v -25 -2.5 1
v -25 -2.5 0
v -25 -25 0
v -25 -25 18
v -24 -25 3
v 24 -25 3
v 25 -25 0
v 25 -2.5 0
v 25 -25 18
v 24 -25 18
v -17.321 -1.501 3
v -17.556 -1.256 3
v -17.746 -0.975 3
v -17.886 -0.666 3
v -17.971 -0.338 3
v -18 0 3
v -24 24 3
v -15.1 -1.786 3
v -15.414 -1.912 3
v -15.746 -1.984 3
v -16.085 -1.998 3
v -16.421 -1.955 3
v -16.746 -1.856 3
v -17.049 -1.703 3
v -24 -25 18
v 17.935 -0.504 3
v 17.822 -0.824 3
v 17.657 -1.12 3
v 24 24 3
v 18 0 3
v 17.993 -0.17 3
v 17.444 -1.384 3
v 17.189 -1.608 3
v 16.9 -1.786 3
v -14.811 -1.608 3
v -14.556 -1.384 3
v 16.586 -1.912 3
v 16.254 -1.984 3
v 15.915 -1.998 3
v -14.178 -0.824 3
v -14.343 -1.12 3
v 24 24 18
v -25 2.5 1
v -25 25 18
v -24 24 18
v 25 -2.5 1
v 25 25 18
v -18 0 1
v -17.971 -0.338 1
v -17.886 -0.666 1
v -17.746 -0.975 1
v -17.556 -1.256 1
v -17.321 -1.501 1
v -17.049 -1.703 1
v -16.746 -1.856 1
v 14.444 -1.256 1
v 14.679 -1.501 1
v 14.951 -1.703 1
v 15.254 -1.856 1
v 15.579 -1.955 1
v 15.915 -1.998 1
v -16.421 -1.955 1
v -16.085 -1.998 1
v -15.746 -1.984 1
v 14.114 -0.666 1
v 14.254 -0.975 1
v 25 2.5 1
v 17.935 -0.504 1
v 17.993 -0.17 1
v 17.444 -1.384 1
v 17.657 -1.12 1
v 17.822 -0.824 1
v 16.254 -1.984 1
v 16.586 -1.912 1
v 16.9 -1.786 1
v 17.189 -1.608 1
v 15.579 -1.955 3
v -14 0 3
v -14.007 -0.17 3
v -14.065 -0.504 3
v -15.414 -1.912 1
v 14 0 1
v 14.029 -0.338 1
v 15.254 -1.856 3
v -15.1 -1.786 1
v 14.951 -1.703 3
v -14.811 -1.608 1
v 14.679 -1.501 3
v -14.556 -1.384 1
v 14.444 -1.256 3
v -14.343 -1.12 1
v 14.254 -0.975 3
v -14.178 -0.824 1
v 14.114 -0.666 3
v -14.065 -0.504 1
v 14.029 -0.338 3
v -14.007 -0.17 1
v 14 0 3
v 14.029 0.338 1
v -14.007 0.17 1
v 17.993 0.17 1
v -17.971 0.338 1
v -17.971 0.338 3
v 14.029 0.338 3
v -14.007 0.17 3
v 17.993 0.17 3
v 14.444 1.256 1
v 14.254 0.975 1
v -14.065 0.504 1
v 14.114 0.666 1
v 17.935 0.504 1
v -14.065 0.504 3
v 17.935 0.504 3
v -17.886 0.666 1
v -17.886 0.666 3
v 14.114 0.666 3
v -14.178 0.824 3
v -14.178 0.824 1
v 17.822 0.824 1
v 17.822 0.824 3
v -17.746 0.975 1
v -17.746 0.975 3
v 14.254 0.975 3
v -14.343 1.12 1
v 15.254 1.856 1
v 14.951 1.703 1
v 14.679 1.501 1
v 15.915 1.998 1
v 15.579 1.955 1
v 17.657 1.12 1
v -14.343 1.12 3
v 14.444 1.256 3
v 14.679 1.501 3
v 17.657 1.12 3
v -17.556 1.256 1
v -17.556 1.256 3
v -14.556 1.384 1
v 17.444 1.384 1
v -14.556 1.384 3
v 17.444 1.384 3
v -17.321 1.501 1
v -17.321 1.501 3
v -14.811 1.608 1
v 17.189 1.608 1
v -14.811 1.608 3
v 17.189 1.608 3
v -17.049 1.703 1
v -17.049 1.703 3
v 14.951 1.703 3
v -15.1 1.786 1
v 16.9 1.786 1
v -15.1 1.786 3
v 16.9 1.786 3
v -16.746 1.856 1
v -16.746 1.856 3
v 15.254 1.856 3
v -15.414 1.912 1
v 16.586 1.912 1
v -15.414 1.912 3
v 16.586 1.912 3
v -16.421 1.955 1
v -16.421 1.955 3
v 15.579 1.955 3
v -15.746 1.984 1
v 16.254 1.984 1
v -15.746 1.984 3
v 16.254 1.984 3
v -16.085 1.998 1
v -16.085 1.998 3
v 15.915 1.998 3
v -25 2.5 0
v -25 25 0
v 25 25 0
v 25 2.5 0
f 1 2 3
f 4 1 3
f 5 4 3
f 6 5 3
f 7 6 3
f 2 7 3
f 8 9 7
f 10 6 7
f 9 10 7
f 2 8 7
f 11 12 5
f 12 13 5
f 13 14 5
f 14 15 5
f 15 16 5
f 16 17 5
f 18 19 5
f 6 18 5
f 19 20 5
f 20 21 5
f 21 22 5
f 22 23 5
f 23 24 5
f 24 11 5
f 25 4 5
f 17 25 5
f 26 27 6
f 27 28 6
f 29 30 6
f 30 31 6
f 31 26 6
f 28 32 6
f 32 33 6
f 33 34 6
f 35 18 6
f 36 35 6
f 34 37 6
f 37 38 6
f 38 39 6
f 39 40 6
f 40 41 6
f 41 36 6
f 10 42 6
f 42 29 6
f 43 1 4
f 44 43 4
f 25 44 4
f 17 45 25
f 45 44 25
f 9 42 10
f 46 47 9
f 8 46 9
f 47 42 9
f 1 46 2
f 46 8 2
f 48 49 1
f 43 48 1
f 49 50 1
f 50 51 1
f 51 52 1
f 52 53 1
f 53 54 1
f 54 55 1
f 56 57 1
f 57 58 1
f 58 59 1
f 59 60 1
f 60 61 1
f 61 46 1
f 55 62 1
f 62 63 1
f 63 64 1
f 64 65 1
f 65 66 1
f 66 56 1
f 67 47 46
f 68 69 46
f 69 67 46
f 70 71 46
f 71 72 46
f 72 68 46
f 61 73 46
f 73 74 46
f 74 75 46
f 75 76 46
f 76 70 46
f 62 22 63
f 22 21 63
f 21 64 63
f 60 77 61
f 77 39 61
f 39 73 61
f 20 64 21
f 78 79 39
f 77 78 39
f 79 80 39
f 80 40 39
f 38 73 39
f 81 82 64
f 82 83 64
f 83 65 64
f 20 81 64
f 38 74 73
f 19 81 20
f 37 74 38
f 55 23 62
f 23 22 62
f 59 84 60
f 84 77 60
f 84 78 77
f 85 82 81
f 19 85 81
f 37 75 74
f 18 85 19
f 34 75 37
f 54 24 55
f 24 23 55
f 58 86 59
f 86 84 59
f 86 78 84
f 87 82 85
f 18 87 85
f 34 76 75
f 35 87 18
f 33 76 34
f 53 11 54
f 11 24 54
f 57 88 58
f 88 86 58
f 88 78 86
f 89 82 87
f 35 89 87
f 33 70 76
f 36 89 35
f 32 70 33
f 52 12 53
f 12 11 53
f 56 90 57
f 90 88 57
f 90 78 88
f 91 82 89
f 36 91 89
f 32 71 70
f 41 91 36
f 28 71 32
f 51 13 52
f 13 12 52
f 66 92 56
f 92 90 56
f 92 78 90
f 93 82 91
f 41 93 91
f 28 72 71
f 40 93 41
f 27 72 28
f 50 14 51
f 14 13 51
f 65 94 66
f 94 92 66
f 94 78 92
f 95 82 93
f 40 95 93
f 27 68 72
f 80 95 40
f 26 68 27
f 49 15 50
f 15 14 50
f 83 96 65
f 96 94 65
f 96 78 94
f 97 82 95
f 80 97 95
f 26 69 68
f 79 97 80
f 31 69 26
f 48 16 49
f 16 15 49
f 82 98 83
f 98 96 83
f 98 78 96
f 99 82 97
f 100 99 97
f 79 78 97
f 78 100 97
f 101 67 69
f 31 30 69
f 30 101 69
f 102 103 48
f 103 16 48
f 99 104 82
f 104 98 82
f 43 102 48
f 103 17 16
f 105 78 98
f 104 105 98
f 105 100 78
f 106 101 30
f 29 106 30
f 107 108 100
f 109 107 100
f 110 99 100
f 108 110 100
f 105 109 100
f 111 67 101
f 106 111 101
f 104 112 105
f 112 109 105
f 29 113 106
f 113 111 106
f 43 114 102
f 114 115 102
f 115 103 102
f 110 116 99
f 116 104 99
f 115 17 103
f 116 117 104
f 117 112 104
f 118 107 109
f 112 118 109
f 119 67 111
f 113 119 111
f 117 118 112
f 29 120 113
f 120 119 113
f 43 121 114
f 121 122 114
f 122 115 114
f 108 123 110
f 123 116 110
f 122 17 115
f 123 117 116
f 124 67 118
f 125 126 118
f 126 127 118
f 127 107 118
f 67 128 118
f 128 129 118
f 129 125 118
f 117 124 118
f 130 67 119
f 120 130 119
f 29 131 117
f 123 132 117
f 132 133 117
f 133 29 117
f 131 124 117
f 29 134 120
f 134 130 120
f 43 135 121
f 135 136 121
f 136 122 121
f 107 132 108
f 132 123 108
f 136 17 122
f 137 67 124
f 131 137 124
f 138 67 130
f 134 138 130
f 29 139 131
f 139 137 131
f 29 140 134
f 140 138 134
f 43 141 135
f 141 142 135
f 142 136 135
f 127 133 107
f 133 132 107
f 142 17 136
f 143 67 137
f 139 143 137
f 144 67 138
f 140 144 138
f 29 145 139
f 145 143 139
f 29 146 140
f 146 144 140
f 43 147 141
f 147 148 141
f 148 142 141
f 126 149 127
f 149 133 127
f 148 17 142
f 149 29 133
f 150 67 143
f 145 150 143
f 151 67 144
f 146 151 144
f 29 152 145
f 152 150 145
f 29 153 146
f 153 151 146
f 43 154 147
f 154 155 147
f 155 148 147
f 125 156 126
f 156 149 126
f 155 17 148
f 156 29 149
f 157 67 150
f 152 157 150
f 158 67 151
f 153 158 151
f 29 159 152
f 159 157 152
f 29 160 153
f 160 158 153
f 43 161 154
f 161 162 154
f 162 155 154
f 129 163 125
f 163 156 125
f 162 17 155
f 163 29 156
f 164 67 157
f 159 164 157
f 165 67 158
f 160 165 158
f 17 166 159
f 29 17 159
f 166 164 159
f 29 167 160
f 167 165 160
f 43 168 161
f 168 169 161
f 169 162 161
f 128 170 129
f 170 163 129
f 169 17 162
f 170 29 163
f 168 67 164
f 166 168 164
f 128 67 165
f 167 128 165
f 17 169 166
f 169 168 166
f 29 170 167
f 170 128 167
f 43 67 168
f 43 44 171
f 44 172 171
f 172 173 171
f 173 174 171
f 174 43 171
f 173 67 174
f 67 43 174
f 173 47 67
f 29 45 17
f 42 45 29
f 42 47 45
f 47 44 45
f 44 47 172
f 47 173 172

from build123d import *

# Parameters (mm, degrees)
SKICA1_W                 = 50
SKICA1_H                 = 50
P_IDAT_VYSUNUT_M2_DEPTH  = 3
SKICA5_W                 = 50
SKICA5_H                 = 5
ODEBRAT_VYSUNUT_M3_DEPTH = 1
P_IDAT_VYSUNUT_M9_DEPTH  = 15
SKICA17_R                = 2
ODEBRAT_VYSUNUT_M8_DEPTH = 4


with BuildPart() as part:
    # Skica1 → Přidat vysunutím2 (new body)
    with BuildSketch(Plane.XY):
        Rectangle(SKICA1_W, SKICA1_H)
    extrude(amount=P_IDAT_VYSUNUT_M2_DEPTH)

    # Skica5 → Odebrat vysunutím3 (cut)
    with BuildSketch(Plane(origin=(0, 0, 0), x_dir=(-1, 0, 0), z_dir=(0, 0, -1))):
        Rectangle(SKICA5_W, SKICA5_H)
    extrude(amount=-ODEBRAT_VYSUNUT_M3_DEPTH, mode=Mode.SUBTRACT)

    # Skica14 → Přidat vysunutím9 (add)
    with BuildSketch(Plane.XY.offset(3)):
        Polygon((25, 25), (-25, 25), (-25, -25), (-24, -25), (-24, 24), (24, 24), (24, -25), (25, -25), align=None)
    extrude(amount=P_IDAT_VYSUNUT_M9_DEPTH)

    # Skica17 → Odebrat vysunutím8 (cut)
    with BuildSketch(Plane(origin=(0, 0, 1), x_dir=(-1, 0, 0), z_dir=(0, 0, -1))):
        with Locations((-16, 0)):
            Circle(SKICA17_R)
        with Locations((16, 0)):
            Circle(SKICA17_R)
    extrude(amount=-ODEBRAT_VYSUNUT_M8_DEPTH, mode=Mode.SUBTRACT)


solid = part.part
